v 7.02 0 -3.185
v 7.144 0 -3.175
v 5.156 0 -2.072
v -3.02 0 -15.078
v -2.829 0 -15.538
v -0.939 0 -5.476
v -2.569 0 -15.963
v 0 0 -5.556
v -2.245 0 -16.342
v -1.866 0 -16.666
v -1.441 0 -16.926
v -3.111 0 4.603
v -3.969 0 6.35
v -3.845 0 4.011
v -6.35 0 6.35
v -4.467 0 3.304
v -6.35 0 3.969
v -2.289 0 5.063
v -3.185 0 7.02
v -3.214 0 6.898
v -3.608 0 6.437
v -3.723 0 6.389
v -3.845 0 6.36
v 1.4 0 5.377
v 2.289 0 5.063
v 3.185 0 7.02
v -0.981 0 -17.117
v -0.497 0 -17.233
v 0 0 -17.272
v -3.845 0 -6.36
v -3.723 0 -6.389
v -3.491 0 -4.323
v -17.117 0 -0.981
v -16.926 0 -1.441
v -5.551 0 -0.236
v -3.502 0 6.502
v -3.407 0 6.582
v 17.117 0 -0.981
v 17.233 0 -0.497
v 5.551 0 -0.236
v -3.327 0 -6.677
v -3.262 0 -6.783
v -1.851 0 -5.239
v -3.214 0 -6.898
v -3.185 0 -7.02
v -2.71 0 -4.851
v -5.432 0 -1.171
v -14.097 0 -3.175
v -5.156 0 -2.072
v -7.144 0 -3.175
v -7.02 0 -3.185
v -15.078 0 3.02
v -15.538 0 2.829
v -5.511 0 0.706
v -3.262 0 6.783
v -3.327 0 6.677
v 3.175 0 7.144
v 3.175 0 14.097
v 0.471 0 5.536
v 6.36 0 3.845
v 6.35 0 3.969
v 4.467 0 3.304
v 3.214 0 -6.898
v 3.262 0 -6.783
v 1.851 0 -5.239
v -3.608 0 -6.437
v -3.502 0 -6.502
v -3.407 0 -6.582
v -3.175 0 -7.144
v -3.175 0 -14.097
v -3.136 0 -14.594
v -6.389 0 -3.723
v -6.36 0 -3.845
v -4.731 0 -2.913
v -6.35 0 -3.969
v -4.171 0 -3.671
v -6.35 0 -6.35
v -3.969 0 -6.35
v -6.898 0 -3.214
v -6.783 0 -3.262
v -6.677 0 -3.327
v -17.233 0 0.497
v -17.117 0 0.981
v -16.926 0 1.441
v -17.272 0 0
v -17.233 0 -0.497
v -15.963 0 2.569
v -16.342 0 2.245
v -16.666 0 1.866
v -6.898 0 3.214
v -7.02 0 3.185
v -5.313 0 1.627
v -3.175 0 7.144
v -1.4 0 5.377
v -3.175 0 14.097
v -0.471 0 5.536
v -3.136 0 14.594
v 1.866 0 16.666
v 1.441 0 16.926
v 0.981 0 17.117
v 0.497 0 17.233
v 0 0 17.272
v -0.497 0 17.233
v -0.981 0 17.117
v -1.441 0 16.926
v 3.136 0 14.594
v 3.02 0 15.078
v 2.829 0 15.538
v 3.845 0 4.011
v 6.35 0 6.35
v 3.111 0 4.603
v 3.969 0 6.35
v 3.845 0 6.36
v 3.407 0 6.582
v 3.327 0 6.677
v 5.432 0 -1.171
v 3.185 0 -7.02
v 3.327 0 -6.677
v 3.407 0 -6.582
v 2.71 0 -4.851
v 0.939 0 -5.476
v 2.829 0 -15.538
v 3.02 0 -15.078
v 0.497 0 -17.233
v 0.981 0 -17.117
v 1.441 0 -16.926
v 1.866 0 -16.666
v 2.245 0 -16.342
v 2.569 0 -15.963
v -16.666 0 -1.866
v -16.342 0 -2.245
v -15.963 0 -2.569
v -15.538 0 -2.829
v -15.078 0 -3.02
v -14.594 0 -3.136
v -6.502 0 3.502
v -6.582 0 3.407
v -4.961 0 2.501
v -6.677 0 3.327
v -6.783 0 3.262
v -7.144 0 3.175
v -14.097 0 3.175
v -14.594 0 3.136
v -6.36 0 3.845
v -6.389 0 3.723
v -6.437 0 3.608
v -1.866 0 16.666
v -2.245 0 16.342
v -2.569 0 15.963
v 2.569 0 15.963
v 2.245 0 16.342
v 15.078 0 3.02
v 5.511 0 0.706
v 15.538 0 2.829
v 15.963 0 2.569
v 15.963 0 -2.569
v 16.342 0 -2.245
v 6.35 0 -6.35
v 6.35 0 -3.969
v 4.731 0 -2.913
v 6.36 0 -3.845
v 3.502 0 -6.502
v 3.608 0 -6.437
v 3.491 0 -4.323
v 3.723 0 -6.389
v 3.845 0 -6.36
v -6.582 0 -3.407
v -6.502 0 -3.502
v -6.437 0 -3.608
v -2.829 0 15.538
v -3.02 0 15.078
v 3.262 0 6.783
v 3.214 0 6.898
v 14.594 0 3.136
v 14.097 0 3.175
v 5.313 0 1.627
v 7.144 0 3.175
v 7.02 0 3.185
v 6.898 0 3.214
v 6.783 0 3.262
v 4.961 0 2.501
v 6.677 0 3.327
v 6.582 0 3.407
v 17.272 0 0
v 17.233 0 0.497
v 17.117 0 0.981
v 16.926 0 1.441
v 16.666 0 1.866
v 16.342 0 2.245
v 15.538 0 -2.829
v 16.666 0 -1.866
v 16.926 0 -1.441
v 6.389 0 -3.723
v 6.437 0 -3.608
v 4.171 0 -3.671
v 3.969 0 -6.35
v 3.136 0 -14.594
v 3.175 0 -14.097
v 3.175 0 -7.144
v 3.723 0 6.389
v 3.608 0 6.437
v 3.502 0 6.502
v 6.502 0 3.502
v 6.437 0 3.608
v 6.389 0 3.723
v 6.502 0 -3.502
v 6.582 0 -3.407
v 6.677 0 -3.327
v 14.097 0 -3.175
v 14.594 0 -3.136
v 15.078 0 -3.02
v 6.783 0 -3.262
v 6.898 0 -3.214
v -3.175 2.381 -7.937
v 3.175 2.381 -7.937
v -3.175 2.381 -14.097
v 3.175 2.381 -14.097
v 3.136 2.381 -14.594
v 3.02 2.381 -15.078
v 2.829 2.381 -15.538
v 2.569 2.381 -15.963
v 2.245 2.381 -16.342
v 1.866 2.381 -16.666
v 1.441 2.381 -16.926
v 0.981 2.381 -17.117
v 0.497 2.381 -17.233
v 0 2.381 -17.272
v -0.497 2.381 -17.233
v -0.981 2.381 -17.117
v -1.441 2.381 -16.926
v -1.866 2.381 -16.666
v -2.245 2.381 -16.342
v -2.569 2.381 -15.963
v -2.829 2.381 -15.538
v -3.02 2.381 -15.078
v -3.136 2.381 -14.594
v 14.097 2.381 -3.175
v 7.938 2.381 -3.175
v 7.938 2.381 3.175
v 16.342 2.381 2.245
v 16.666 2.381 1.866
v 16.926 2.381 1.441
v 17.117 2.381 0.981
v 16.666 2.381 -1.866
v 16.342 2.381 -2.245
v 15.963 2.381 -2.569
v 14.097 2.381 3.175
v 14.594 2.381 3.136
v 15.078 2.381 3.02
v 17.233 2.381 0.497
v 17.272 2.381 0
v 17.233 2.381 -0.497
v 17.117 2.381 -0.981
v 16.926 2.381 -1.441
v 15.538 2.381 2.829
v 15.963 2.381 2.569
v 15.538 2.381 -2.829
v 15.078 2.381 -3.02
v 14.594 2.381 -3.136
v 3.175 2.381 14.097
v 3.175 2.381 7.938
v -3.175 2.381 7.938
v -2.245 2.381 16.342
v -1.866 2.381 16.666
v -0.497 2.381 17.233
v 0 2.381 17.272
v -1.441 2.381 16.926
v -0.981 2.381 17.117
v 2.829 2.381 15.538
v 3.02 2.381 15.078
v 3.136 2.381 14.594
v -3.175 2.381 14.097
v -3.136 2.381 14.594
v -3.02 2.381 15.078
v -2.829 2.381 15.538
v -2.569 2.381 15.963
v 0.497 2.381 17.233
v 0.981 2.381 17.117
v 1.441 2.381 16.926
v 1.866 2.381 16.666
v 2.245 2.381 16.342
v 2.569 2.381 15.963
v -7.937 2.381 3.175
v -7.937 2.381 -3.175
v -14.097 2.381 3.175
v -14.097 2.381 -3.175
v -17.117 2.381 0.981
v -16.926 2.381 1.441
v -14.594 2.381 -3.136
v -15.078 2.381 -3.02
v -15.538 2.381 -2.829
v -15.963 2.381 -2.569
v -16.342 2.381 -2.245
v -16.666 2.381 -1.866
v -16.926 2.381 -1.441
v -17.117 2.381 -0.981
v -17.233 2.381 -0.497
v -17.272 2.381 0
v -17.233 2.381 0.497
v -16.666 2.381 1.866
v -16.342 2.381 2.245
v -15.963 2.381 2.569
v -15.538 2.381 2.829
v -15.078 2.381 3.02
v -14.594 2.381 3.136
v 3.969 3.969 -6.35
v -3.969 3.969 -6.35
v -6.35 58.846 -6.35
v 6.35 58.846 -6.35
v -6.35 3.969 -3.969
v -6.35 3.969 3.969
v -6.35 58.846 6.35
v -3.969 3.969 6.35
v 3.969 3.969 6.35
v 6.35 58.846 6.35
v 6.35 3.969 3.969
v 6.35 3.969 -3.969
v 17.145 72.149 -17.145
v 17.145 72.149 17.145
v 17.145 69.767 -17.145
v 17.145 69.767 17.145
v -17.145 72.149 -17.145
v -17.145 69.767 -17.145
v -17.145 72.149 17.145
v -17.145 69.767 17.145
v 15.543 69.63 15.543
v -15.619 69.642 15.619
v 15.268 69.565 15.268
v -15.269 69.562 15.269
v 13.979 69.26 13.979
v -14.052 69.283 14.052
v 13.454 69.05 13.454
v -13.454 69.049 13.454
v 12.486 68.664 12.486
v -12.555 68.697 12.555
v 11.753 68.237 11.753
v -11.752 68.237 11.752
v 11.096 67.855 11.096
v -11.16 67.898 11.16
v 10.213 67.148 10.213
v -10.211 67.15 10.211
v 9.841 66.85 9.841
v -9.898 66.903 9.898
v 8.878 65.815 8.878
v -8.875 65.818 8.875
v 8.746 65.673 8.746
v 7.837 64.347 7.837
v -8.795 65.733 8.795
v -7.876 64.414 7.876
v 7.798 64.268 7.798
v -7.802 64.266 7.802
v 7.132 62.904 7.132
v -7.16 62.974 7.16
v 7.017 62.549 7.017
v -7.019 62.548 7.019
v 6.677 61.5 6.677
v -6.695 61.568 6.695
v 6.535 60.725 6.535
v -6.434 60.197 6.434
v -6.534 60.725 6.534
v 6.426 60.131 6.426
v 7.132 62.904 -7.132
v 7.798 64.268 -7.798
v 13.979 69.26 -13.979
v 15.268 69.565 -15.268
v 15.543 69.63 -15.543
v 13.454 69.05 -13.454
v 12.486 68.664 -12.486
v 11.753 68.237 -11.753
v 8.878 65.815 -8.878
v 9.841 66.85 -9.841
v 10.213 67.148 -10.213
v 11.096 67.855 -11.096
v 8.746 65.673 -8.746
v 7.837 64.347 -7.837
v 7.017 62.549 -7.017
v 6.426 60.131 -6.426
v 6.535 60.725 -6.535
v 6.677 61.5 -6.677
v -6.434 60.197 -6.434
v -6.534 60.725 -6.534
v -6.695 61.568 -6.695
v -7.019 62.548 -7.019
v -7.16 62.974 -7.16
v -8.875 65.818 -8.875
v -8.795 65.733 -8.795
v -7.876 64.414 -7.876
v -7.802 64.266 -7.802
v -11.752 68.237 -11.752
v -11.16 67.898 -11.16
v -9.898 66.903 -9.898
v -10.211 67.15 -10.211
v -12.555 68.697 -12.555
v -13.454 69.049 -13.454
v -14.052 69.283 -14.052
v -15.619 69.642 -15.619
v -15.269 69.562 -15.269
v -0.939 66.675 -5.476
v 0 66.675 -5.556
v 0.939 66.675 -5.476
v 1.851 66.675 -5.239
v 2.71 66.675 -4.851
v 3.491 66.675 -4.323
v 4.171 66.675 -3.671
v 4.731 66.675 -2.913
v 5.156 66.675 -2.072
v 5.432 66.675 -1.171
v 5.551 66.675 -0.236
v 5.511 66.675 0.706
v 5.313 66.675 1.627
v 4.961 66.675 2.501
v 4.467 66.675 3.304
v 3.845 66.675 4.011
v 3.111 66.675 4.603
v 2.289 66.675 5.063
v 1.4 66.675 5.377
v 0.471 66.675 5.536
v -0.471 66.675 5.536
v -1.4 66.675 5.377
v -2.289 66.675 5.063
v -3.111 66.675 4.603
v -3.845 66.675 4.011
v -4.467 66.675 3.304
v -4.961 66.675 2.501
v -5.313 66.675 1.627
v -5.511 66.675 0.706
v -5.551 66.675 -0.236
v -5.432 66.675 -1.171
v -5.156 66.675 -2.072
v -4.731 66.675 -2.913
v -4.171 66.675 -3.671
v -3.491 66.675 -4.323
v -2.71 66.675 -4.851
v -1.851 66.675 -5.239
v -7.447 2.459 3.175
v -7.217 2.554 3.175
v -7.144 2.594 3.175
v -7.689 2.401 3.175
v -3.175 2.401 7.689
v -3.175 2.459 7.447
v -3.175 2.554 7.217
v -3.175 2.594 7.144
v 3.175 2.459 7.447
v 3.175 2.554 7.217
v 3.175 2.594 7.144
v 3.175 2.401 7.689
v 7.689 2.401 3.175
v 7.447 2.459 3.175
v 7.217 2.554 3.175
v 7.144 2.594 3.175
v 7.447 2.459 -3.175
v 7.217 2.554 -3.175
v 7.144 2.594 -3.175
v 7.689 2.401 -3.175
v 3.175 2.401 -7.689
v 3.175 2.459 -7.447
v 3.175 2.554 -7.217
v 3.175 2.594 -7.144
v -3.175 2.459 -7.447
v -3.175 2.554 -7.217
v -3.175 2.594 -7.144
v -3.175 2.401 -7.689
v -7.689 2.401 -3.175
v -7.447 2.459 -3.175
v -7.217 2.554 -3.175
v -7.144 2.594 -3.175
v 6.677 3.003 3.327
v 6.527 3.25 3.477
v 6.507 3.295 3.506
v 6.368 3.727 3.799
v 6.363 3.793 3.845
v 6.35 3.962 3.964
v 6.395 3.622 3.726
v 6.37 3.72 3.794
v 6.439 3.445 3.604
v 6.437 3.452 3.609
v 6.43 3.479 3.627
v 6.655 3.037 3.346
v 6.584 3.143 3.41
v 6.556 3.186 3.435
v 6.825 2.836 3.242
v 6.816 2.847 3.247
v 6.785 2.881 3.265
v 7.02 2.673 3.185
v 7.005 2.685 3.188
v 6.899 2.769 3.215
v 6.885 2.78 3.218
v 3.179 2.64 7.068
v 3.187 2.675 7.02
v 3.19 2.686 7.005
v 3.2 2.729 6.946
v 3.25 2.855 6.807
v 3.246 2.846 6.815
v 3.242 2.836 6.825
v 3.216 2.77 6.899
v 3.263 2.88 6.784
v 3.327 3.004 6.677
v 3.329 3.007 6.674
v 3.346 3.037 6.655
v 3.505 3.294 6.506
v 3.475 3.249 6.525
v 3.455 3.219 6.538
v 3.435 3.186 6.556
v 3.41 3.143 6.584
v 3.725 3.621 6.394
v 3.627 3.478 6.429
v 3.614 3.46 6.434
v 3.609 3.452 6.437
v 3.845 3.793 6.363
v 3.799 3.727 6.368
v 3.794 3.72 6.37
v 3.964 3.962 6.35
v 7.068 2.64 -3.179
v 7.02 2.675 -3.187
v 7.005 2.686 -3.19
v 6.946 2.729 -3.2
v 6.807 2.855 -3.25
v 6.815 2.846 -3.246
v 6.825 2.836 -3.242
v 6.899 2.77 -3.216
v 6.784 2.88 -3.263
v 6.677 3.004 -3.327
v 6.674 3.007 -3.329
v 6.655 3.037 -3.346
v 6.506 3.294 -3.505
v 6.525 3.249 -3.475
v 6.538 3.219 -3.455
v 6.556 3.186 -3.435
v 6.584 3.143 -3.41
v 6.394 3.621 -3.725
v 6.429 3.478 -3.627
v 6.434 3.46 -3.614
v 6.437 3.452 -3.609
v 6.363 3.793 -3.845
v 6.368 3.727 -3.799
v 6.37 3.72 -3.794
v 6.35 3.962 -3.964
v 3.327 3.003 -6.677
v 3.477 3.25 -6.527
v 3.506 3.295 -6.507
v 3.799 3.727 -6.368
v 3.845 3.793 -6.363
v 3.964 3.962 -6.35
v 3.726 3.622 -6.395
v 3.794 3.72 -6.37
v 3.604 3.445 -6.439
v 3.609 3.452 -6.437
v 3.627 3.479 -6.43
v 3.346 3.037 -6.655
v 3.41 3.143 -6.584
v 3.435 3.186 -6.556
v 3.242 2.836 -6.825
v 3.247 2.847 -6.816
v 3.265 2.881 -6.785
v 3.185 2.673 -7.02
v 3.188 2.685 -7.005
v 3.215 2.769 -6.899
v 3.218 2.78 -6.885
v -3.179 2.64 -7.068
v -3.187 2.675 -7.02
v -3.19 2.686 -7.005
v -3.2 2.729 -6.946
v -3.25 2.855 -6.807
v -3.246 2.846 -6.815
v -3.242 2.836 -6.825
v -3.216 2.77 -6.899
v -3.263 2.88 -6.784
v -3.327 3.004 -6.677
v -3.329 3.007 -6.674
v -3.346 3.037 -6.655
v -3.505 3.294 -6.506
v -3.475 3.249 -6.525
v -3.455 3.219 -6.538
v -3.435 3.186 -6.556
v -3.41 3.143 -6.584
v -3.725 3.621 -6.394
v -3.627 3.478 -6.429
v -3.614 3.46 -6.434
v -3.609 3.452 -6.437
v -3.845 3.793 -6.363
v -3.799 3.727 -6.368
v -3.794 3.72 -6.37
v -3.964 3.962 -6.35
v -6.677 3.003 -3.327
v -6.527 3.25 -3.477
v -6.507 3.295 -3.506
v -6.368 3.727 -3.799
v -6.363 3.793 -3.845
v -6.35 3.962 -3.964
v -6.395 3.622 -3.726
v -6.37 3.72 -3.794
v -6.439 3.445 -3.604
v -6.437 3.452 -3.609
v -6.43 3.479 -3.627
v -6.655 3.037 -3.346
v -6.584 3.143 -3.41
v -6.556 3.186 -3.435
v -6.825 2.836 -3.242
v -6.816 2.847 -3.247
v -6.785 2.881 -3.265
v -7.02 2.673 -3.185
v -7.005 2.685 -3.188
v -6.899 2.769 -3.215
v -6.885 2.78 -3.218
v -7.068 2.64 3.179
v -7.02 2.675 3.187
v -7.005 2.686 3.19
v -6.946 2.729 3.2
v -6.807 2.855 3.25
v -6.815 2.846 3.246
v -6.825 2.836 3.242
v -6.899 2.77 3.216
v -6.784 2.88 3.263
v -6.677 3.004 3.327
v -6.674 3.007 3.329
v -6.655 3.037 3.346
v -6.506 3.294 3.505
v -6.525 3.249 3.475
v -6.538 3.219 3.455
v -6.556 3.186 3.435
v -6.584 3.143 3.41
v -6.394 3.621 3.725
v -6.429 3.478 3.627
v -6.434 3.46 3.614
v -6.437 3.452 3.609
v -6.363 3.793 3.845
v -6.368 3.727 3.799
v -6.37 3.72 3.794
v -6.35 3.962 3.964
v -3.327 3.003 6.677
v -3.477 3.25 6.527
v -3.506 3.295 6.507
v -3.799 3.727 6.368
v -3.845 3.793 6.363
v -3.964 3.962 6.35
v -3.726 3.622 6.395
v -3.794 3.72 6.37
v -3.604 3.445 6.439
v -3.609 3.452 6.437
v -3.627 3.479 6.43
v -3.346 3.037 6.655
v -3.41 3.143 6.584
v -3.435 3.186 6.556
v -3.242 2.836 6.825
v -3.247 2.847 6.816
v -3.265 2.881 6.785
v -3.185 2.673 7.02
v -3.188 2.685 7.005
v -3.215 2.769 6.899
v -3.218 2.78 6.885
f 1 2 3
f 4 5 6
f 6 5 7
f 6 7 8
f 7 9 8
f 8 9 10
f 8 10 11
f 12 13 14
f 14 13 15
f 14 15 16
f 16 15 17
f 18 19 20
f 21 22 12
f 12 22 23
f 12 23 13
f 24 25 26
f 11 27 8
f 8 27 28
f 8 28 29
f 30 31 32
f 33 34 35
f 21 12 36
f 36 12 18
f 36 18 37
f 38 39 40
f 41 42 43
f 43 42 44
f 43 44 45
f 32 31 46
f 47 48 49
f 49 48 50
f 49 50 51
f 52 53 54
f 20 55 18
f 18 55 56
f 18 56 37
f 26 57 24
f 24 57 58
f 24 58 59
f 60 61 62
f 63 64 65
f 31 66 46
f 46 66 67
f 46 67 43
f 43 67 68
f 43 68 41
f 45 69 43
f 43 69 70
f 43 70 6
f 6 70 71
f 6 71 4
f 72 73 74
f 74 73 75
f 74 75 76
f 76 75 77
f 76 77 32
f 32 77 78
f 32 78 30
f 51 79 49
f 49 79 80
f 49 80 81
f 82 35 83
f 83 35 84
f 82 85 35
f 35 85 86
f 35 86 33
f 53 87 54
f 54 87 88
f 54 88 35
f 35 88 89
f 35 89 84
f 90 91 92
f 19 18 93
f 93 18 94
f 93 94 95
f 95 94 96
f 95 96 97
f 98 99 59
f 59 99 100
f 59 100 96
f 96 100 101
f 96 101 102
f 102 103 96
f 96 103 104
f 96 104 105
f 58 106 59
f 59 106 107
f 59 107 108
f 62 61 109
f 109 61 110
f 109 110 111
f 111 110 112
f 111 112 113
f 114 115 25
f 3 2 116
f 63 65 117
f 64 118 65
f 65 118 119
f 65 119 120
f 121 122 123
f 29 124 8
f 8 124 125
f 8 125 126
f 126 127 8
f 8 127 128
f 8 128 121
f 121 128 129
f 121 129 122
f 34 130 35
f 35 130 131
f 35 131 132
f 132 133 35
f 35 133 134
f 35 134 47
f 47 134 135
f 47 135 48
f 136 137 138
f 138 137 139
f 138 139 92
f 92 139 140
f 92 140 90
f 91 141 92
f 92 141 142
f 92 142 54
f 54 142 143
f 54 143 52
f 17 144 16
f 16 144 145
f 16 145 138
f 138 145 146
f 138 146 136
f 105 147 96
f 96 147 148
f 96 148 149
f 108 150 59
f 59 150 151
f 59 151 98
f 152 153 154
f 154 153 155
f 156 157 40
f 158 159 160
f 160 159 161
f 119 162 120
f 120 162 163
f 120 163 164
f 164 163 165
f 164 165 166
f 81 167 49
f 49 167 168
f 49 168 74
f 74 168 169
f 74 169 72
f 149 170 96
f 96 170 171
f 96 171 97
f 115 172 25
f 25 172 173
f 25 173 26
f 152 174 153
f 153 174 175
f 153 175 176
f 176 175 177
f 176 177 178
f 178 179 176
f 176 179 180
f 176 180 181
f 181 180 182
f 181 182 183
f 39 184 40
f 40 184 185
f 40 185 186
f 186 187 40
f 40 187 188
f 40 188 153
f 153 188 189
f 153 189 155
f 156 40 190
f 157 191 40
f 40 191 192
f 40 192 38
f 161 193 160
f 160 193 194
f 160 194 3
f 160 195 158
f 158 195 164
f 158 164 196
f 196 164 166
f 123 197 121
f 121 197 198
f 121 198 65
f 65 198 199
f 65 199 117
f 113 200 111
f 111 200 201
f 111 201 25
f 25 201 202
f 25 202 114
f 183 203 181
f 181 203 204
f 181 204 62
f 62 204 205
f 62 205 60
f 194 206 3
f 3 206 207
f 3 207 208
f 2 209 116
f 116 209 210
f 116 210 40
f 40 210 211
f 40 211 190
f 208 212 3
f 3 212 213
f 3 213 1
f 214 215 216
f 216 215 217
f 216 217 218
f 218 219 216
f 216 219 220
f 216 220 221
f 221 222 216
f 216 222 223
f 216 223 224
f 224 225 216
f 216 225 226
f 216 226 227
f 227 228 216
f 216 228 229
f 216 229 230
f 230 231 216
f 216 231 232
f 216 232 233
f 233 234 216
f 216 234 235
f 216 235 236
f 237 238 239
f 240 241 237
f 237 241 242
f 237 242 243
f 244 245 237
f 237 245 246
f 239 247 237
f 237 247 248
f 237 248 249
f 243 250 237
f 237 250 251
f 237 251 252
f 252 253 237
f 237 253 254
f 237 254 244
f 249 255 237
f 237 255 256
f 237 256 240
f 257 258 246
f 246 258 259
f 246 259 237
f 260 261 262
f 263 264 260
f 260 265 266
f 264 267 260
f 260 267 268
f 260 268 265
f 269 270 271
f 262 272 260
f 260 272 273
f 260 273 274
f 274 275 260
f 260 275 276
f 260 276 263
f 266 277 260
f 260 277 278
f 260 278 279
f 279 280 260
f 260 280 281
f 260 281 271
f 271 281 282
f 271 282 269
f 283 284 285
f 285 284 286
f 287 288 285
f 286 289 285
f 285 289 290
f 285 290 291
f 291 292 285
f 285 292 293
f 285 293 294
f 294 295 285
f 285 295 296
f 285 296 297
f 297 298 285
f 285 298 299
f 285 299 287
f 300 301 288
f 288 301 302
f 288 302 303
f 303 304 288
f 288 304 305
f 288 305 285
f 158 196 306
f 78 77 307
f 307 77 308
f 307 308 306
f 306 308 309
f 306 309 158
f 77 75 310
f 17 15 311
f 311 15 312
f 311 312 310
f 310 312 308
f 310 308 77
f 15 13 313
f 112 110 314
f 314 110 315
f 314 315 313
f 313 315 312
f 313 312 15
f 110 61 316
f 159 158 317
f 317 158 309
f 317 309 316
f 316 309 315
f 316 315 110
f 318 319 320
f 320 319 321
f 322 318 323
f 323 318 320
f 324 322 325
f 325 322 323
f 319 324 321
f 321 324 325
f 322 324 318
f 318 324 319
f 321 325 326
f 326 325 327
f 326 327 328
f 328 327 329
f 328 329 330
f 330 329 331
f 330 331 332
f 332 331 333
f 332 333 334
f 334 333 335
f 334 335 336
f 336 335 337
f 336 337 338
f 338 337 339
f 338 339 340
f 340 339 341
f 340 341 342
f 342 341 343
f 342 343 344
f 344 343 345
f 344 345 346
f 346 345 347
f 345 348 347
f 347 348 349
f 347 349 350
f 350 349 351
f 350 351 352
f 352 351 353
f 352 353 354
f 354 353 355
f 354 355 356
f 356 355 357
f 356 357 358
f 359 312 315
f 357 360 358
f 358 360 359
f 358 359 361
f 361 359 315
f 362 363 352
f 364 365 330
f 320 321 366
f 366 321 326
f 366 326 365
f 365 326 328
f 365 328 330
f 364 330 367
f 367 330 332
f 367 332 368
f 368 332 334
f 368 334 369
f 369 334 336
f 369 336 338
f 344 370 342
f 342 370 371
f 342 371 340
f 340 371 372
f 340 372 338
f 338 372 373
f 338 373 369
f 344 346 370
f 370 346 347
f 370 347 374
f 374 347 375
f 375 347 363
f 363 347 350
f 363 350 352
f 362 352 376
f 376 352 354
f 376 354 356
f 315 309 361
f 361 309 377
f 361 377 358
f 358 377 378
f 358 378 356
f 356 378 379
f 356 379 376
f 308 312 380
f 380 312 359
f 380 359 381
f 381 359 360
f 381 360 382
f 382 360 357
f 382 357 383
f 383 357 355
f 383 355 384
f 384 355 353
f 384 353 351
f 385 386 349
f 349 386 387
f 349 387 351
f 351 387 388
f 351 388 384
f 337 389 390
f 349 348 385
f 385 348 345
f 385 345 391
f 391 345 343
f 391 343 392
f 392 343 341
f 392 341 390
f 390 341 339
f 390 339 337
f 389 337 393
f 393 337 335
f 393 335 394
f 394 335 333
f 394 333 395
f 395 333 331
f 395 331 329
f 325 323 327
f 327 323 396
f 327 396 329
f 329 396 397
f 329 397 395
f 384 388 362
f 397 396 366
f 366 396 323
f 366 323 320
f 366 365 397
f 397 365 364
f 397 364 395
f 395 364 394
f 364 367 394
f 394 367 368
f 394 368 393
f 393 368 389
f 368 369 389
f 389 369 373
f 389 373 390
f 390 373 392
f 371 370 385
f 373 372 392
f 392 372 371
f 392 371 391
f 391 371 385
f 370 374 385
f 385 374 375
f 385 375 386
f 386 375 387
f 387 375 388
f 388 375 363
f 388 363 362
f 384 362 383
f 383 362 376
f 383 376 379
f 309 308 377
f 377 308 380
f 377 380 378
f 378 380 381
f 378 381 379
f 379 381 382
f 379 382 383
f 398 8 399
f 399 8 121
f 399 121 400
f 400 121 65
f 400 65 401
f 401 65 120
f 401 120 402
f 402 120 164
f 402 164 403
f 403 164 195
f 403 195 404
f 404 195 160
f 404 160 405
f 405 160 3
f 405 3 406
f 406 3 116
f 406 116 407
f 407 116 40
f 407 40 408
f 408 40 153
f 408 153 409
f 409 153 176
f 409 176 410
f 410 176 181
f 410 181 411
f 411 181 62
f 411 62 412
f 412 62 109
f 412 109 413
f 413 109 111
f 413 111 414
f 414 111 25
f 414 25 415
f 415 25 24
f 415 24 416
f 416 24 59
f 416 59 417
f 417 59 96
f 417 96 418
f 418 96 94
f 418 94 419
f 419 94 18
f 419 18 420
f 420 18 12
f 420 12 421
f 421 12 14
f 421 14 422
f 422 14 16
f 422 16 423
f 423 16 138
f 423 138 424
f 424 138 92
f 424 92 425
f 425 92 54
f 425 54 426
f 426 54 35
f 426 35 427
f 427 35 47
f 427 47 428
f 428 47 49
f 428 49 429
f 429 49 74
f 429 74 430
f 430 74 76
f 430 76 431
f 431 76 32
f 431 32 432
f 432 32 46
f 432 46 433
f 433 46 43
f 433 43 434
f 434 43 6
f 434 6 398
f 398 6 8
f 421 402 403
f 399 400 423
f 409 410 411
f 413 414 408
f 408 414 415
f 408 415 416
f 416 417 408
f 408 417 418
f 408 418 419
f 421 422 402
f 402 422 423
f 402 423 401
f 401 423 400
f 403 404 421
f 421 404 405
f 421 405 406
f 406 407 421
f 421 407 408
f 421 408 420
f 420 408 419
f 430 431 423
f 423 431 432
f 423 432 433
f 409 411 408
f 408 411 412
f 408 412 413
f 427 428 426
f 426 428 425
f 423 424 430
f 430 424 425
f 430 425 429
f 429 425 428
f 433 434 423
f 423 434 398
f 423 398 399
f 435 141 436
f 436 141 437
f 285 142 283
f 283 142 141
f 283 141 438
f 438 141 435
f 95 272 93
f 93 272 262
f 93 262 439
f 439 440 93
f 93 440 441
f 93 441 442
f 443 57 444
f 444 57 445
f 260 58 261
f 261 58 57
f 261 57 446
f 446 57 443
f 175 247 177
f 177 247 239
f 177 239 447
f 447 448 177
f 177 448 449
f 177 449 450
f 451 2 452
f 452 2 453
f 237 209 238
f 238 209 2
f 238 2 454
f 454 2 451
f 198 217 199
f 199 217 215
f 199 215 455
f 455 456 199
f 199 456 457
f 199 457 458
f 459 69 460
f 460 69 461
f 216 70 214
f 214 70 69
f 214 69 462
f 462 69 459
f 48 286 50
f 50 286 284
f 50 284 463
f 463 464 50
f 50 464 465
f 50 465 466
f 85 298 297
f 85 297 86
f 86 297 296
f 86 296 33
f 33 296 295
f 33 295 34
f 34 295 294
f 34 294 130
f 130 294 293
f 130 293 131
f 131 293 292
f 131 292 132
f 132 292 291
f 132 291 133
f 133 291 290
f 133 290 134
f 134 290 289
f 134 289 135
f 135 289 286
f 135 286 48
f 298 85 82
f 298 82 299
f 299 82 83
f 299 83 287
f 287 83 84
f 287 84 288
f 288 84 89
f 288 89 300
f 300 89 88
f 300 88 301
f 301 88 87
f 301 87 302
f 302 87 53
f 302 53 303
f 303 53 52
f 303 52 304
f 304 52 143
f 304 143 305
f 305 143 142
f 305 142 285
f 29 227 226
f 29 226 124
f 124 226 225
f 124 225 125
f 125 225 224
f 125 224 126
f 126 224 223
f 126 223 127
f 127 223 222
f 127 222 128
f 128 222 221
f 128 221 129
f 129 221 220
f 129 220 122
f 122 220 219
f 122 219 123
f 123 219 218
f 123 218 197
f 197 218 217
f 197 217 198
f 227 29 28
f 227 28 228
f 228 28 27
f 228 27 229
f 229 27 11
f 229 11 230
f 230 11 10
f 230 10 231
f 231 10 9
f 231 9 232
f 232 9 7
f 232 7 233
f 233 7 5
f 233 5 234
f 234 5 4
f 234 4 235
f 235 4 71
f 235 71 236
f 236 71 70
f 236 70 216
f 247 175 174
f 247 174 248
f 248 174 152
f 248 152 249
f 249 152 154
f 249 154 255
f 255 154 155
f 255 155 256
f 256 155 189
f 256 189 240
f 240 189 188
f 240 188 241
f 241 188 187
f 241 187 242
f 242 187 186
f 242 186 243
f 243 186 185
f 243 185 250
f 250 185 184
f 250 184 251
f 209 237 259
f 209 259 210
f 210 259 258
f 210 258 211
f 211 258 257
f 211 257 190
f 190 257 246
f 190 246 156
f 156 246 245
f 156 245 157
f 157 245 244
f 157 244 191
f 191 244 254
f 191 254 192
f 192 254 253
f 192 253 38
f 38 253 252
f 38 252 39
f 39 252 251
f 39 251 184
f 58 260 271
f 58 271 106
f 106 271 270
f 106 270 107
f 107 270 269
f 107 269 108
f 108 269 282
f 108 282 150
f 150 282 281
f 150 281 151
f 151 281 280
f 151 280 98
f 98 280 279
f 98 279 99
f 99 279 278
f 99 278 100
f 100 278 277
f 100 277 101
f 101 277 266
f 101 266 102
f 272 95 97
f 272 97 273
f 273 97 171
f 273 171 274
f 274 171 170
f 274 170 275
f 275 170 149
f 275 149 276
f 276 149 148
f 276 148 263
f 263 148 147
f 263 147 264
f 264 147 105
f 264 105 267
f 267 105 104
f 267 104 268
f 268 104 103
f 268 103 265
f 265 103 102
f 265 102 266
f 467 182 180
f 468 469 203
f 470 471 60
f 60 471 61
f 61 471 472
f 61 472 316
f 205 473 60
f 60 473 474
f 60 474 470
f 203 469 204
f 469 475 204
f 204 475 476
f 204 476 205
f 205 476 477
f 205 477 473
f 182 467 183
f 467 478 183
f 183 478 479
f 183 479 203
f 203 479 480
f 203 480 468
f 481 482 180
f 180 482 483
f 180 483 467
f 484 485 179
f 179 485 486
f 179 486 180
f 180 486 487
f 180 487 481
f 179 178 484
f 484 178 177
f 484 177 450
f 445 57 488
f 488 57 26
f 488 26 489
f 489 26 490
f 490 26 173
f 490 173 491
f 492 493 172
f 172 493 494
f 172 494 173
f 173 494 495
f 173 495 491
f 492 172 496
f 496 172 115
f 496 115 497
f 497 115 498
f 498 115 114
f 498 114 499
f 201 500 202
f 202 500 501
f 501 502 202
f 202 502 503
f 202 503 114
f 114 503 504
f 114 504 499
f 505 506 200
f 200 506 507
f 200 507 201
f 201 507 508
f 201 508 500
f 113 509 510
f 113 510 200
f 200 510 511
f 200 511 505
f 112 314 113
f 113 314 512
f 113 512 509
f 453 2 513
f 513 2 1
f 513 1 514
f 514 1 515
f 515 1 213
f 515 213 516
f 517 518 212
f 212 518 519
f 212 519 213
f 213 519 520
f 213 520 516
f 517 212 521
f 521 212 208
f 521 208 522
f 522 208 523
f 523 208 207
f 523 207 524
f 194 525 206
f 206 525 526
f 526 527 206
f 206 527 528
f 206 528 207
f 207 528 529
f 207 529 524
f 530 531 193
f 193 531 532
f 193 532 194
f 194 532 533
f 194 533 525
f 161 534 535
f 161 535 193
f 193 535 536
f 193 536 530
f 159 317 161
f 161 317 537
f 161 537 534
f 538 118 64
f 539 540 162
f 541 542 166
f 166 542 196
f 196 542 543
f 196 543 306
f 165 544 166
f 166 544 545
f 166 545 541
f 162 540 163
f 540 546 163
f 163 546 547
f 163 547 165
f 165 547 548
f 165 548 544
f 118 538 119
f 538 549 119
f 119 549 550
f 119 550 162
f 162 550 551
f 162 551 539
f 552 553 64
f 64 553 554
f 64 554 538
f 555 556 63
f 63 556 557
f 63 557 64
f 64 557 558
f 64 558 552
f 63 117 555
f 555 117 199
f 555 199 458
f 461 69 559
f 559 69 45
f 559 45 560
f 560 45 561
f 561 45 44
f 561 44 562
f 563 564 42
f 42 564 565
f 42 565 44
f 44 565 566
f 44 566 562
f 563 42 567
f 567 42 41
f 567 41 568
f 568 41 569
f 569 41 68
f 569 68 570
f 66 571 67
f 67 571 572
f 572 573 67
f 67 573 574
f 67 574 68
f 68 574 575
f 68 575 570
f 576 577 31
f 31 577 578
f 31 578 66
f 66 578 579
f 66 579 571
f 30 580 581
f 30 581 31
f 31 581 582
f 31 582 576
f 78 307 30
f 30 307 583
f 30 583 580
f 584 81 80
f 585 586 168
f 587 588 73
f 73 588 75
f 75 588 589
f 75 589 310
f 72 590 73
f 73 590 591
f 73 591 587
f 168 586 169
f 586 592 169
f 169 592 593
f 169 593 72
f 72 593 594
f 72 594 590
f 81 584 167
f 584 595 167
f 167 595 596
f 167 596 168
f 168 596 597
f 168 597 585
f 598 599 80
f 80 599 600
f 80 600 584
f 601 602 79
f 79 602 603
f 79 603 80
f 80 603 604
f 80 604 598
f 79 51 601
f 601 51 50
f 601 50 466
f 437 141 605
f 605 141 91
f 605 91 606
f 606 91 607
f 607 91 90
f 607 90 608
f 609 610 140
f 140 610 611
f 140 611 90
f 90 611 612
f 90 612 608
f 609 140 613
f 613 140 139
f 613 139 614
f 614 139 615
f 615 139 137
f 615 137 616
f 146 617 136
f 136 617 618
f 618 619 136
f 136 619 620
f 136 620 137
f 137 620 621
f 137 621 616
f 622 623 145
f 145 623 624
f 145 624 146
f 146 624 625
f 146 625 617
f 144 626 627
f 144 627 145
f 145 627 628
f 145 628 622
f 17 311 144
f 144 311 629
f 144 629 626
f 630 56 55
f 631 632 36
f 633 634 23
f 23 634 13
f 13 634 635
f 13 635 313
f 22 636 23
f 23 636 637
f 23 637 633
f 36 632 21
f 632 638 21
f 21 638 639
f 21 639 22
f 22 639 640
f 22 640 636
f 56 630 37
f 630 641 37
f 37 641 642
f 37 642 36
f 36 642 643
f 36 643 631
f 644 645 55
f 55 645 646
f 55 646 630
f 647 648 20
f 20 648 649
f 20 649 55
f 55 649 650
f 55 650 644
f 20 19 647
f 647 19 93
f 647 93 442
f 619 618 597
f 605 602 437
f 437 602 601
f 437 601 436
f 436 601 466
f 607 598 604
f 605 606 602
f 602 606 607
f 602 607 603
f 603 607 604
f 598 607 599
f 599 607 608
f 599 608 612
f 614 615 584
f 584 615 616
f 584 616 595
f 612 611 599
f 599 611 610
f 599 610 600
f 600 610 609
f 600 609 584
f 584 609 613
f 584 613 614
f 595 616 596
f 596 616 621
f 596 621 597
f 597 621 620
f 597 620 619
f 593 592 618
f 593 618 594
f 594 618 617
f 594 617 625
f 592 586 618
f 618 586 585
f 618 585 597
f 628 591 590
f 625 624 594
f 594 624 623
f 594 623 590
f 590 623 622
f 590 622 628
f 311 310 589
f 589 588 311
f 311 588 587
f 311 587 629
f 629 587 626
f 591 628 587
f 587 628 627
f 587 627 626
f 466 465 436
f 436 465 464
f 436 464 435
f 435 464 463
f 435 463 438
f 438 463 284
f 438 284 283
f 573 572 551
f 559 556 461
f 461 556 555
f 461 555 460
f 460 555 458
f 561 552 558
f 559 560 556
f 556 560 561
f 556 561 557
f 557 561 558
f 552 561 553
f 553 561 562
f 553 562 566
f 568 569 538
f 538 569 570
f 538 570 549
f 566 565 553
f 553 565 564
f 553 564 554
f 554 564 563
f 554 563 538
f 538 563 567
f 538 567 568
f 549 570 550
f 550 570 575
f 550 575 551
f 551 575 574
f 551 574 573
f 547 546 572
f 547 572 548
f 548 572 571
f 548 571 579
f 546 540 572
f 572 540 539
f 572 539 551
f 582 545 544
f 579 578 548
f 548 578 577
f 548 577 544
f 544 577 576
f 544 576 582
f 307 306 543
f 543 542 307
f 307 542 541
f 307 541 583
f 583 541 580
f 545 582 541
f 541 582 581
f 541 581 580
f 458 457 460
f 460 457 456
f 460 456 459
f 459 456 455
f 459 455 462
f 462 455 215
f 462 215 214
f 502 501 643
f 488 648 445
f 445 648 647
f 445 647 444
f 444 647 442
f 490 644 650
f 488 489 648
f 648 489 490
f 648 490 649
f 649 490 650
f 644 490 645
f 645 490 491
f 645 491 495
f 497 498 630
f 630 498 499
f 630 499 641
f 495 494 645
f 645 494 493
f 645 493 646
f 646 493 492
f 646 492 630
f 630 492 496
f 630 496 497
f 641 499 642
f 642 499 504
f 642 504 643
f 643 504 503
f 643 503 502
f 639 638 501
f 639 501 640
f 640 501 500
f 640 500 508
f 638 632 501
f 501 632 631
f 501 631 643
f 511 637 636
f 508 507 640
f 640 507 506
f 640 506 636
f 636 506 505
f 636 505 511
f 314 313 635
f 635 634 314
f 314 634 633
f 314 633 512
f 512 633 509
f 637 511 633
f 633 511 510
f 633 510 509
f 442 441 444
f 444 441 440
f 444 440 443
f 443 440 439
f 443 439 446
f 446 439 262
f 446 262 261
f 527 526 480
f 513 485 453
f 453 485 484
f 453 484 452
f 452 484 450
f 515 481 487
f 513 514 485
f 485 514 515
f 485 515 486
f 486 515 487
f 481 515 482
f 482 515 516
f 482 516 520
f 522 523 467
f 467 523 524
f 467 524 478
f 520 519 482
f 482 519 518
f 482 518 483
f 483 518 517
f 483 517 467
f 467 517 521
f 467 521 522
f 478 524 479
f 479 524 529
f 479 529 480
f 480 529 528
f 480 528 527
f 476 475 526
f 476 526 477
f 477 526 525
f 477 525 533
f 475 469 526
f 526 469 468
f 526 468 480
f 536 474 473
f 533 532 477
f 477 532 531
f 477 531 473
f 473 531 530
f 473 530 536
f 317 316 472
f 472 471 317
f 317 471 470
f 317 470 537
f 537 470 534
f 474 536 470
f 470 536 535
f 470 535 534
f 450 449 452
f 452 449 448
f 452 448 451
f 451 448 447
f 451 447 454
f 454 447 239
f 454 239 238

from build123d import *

# Parameters (mm, degrees)
SKETCH1_W           = 10.922
SKETCH1_H           = 12.7
SKETCH1_W_2         = 12.7
SKETCH1_H_2         = 10.922
BOSS_EXTRUDE1_DEPTH = 2.38125
SKETCH2_W           = 12.7
SKETCH2_H           = 12.7
BOSS_EXTRUDE2_DEPTH = 67.3862
SKETCH3_W           = 34.29
SKETCH3_H           = 34.29
BOSS_EXTRUDE3_DEPTH = 2.38125
FILLET15_R          = 10.922
SKETCH4_R           = 5.55625
CUT_EXTRUDE1_DEPTH  = 66.675
CUT_EXTRUDE2_REACH  = 78.171
SKETCH5_W           = 10.922
SKETCH5_H           = 3.175
SKETCH5_W_2         = 3.175
SKETCH5_H_2         = 10.922
FILLET18_R          = 3.175
FILLET28_R          = 0.79375
FILLET29_R          = 1.5875


# Some blends are built 0.0001 mm under size
with BuildPart() as part:
    # Sketch1 → Boss-Extrude1 (new body)
    with BuildSketch(Plane(origin=(0, 0, 0), x_dir=(1, 0, 0), z_dir=(0, 1, 0))):
        with Locations((-11.811, 0)):
            Rectangle(SKETCH1_W, SKETCH1_H)
        Rectangle(SKETCH1_W_2, SKETCH1_H)
        with Locations((0, 11.811)):
            Rectangle(SKETCH1_W_2, SKETCH1_H_2)
        with Locations((11.811, 0)):
            Rectangle(SKETCH1_W, SKETCH1_H)
        with Locations((0, -11.811)):
            Rectangle(SKETCH1_W_2, SKETCH1_H_2)
    extrude(amount=BOSS_EXTRUDE1_DEPTH)

    # Sketch2 → Boss-Extrude2 (add)
    with BuildSketch(Plane(origin=(0, 2.38125, 0), x_dir=(1, 0, 0), z_dir=(0, 1, 0))):
        Rectangle(SKETCH2_W, SKETCH2_H)
    extrude(amount=BOSS_EXTRUDE2_DEPTH)

    # Sketch3 → Boss-Extrude3 (add)
    with BuildSketch(Plane(origin=(0, 69.76745, 0), x_dir=(1, 0, 0), z_dir=(0, 1, 0))):
        Rectangle(SKETCH3_W, SKETCH3_H)
    extrude(amount=BOSS_EXTRUDE3_DEPTH)

    # Fillet15
    # the kernel refuses this fillet: 10.922 mm, written as the material it adds along each edge
    with BuildSketch(Plane(origin=(6.35, 69.76745, 6.35), x_dir=(1, 0, 0), z_dir=(0, 0, -1))) as fillet15_piece_1_section:
        with BuildLine():
            CenterArc((FILLET15_R, FILLET15_R), FILLET15_R, 180, 90)
            Line((0, FILLET15_R), (0, 0))
            Line((0, 0), (FILLET15_R, 0))
        make_face()
    fillet15_piece_1 = extrude(amount=12.7, mode=Mode.PRIVATE)
    fillet15_piece_1 = split(fillet15_piece_1, bisect_by=Plane(origin=(17.145, 67.292403203, 0), z_dir=(-1, 0, 0)), keep=Keep.TOP, mode=Mode.PRIVATE)
    add(fillet15_piece_1)
    with BuildSketch(Plane(origin=(6.35, 69.76745, -6.35), x_dir=(0, 0, -1), z_dir=(-1, 0, 0))) as fillet15_piece_2_section:
        with BuildLine():
            CenterArc((FILLET15_R, FILLET15_R), FILLET15_R, 180, 90)
            Line((0, FILLET15_R), (0, 0))
            Line((0, 0), (FILLET15_R, 0))
        make_face()
    fillet15_piece_2 = extrude(amount=12.7, mode=Mode.PRIVATE)
    fillet15_piece_2 = split(fillet15_piece_2, bisect_by=Plane(origin=(0, 67.292403203, -17.145), z_dir=(0, 0, 1)), keep=Keep.TOP, mode=Mode.PRIVATE)
    add(fillet15_piece_2)
    with BuildSketch(Plane(origin=(-6.35, 69.76745, -6.35), x_dir=(-1, 0, 0), z_dir=(0, 0, 1))) as fillet15_piece_3_section:
        with BuildLine():
            CenterArc((FILLET15_R, FILLET15_R), FILLET15_R, 180, 90)
            Line((0, FILLET15_R), (0, 0))
            Line((0, 0), (FILLET15_R, 0))
        make_face()
    fillet15_piece_3 = extrude(amount=12.7, mode=Mode.PRIVATE)
    fillet15_piece_3 = split(fillet15_piece_3, bisect_by=Plane(origin=(-17.145, 67.292403203, 0), z_dir=(1, 0, 0)), keep=Keep.TOP, mode=Mode.PRIVATE)
    add(fillet15_piece_3)
    with BuildSketch(Plane(origin=(-6.35, 69.76745, 6.35), x_dir=(0, 0, 1), z_dir=(1, 0, 0))) as fillet15_piece_4_section:
        with BuildLine():
            CenterArc((FILLET15_R, FILLET15_R), FILLET15_R, 180, 90)
            Line((0, FILLET15_R), (0, 0))
            Line((0, 0), (FILLET15_R, 0))
        make_face()
    fillet15_piece_4 = extrude(amount=12.7, mode=Mode.PRIVATE)
    fillet15_piece_4 = split(fillet15_piece_4, bisect_by=Plane(origin=(0, 67.292403203, 17.145), z_dir=(0, 0, -1)), keep=Keep.TOP, mode=Mode.PRIVATE)
    add(fillet15_piece_4)
    with BuildSketch(Plane(origin=(-6.35, 69.76745, 6.35), x_dir=(0, 0, 1), z_dir=(1, 0, 0))) as fillet15_piece_5a_section:
        with BuildLine():
            CenterArc((FILLET15_R, FILLET15_R), FILLET15_R, 180, 90)
            Line((0, FILLET15_R), (0, 0))
            Line((0, 0), (FILLET15_R, 0))
        make_face()
    fillet15_piece_5a = extrude(amount=40.005, mode=Mode.PRIVATE)
    fillet15_piece_5a = split(fillet15_piece_5a, bisect_by=Plane(origin=(11.7475, 67.292403203, 17.145), z_dir=(0, 0, -1)), keep=Keep.TOP, mode=Mode.PRIVATE)
    fillet15_piece_5a = split(fillet15_piece_5a, bisect_by=Plane(origin=(17.145, 67.292403203, 8.815024112), z_dir=(-1, 0, 0)), keep=Keep.TOP, mode=Mode.PRIVATE)
    fillet15_piece_5a = split(fillet15_piece_5a, bisect_by=Plane(origin=(6.35, 67.292403203, 8.815024112), z_dir=(1, 0, 0)), keep=Keep.TOP, mode=Mode.PRIVATE)
    with BuildSketch(Plane(origin=(6.35, 69.76745, 33.655), x_dir=(1, 0, 0), z_dir=(0, 0, -1))) as fillet15_piece_5b_section:
        with BuildLine():
            CenterArc((FILLET15_R, FILLET15_R), FILLET15_R, 180, 90)
            Line((0, FILLET15_R), (0, 0))
            Line((0, 0), (FILLET15_R, 0))
        make_face()
    fillet15_piece_5b = extrude(amount=40.005, mode=Mode.PRIVATE)
    fillet15_piece_5b = split(fillet15_piece_5b, bisect_by=Plane(origin=(8.815024112, 67.292403203, 17.145), z_dir=(0, 0, -1)), keep=Keep.TOP, mode=Mode.PRIVATE)
    fillet15_piece_5b = split(fillet15_piece_5b, bisect_by=Plane(origin=(17.145, 67.292403203, 11.7475), z_dir=(-1, 0, 0)), keep=Keep.TOP, mode=Mode.PRIVATE)
    fillet15_piece_5b = split(fillet15_piece_5b, bisect_by=Plane(origin=(8.815024112, 67.292403203, 6.35), z_dir=(0, 0, 1)), keep=Keep.TOP, mode=Mode.PRIVATE)
    fillet15_piece_5 = fillet15_piece_5a & fillet15_piece_5b
    add(fillet15_piece_5)
    with BuildSketch(Plane(origin=(6.35, 69.76745, 6.35), x_dir=(1, 0, 0), z_dir=(0, 0, -1))) as fillet15_piece_6a_section:
        with BuildLine():
            CenterArc((FILLET15_R, FILLET15_R), FILLET15_R, 180, 90)
            Line((0, FILLET15_R), (0, 0))
            Line((0, 0), (FILLET15_R, 0))
        make_face()
    fillet15_piece_6a = extrude(amount=40.005, mode=Mode.PRIVATE)
    fillet15_piece_6a = split(fillet15_piece_6a, bisect_by=Plane(origin=(17.145, 67.292403203, -11.7475), z_dir=(-1, 0, 0)), keep=Keep.TOP, mode=Mode.PRIVATE)
    fillet15_piece_6a = split(fillet15_piece_6a, bisect_by=Plane(origin=(8.815024112, 67.292403203, -17.145), z_dir=(0, 0, 1)), keep=Keep.TOP, mode=Mode.PRIVATE)
    fillet15_piece_6a = split(fillet15_piece_6a, bisect_by=Plane(origin=(8.815024112, 67.292403203, -6.35), z_dir=(0, 0, -1)), keep=Keep.TOP, mode=Mode.PRIVATE)
    with BuildSketch(Plane(origin=(33.655, 69.76745, -6.35), x_dir=(0, 0, -1), z_dir=(-1, 0, 0))) as fillet15_piece_6b_section:
        with BuildLine():
            CenterArc((FILLET15_R, FILLET15_R), FILLET15_R, 180, 90)
            Line((0, FILLET15_R), (0, 0))
            Line((0, 0), (FILLET15_R, 0))
        make_face()
    fillet15_piece_6b = extrude(amount=40.005, mode=Mode.PRIVATE)
    fillet15_piece_6b = split(fillet15_piece_6b, bisect_by=Plane(origin=(17.145, 67.292403203, -8.815024112), z_dir=(-1, 0, 0)), keep=Keep.TOP, mode=Mode.PRIVATE)
    fillet15_piece_6b = split(fillet15_piece_6b, bisect_by=Plane(origin=(11.7475, 67.292403203, -17.145), z_dir=(0, 0, 1)), keep=Keep.TOP, mode=Mode.PRIVATE)
    fillet15_piece_6b = split(fillet15_piece_6b, bisect_by=Plane(origin=(6.35, 67.292403203, -8.815024112), z_dir=(1, 0, 0)), keep=Keep.TOP, mode=Mode.PRIVATE)
    fillet15_piece_6 = fillet15_piece_6a & fillet15_piece_6b
    add(fillet15_piece_6)
    with BuildSketch(Plane(origin=(-6.35, 69.76745, -33.655), x_dir=(-1, 0, 0), z_dir=(0, 0, 1))) as fillet15_piece_7a_section:
        with BuildLine():
            CenterArc((FILLET15_R, FILLET15_R), FILLET15_R, 180, 90)
            Line((0, FILLET15_R), (0, 0))
            Line((0, 0), (FILLET15_R, 0))
        make_face()
    fillet15_piece_7a = extrude(amount=40.005, mode=Mode.PRIVATE)
    fillet15_piece_7a = split(fillet15_piece_7a, bisect_by=Plane(origin=(-17.145, 67.292403203, -11.7475), z_dir=(1, 0, 0)), keep=Keep.TOP, mode=Mode.PRIVATE)
    fillet15_piece_7a = split(fillet15_piece_7a, bisect_by=Plane(origin=(-8.815024112, 67.292403203, -17.145), z_dir=(0, 0, 1)), keep=Keep.TOP, mode=Mode.PRIVATE)
    fillet15_piece_7a = split(fillet15_piece_7a, bisect_by=Plane(origin=(-8.815024112, 67.292403203, -6.35), z_dir=(0, 0, -1)), keep=Keep.TOP, mode=Mode.PRIVATE)
    with BuildSketch(Plane(origin=(6.35, 69.76745, -6.35), x_dir=(0, 0, -1), z_dir=(-1, 0, 0))) as fillet15_piece_7b_section:
        with BuildLine():
            CenterArc((FILLET15_R, FILLET15_R), FILLET15_R, 180, 90)
            Line((0, FILLET15_R), (0, 0))
            Line((0, 0), (FILLET15_R, 0))
        make_face()
    fillet15_piece_7b = extrude(amount=40.005, mode=Mode.PRIVATE)
    fillet15_piece_7b = split(fillet15_piece_7b, bisect_by=Plane(origin=(-17.145, 67.292403203, -8.815024112), z_dir=(1, 0, 0)), keep=Keep.TOP, mode=Mode.PRIVATE)
    fillet15_piece_7b = split(fillet15_piece_7b, bisect_by=Plane(origin=(-11.7475, 67.292403203, -17.145), z_dir=(0, 0, 1)), keep=Keep.TOP, mode=Mode.PRIVATE)
    fillet15_piece_7b = split(fillet15_piece_7b, bisect_by=Plane(origin=(-6.35, 67.292403203, -8.815024112), z_dir=(-1, 0, 0)), keep=Keep.TOP, mode=Mode.PRIVATE)
    fillet15_piece_7 = fillet15_piece_7a & fillet15_piece_7b
    add(fillet15_piece_7)
    with BuildSketch(Plane(origin=(-6.35, 69.76745, -6.35), x_dir=(-1, 0, 0), z_dir=(0, 0, 1))) as fillet15_piece_8a_section:
        with BuildLine():
            CenterArc((FILLET15_R, FILLET15_R), FILLET15_R, 180, 90)
            Line((0, FILLET15_R), (0, 0))
            Line((0, 0), (FILLET15_R, 0))
        make_face()
    fillet15_piece_8a = extrude(amount=40.005, mode=Mode.PRIVATE)
    fillet15_piece_8a = split(fillet15_piece_8a, bisect_by=Plane(origin=(-8.815024112, 67.292403203, 17.145), z_dir=(0, 0, -1)), keep=Keep.TOP, mode=Mode.PRIVATE)
    fillet15_piece_8a = split(fillet15_piece_8a, bisect_by=Plane(origin=(-17.145, 67.292403203, 11.7475), z_dir=(1, 0, 0)), keep=Keep.TOP, mode=Mode.PRIVATE)
    fillet15_piece_8a = split(fillet15_piece_8a, bisect_by=Plane(origin=(-8.815024112, 67.292403203, 6.35), z_dir=(0, 0, 1)), keep=Keep.TOP, mode=Mode.PRIVATE)
    with BuildSketch(Plane(origin=(-33.655, 69.76745, 6.35), x_dir=(0, 0, 1), z_dir=(1, 0, 0))) as fillet15_piece_8b_section:
        with BuildLine():
            CenterArc((FILLET15_R, FILLET15_R), FILLET15_R, 180, 90)
            Line((0, FILLET15_R), (0, 0))
            Line((0, 0), (FILLET15_R, 0))
        make_face()
    fillet15_piece_8b = extrude(amount=40.005, mode=Mode.PRIVATE)
    fillet15_piece_8b = split(fillet15_piece_8b, bisect_by=Plane(origin=(-11.7475, 67.292403203, 17.145), z_dir=(0, 0, -1)), keep=Keep.TOP, mode=Mode.PRIVATE)
    fillet15_piece_8b = split(fillet15_piece_8b, bisect_by=Plane(origin=(-17.145, 67.292403203, 8.815024112), z_dir=(1, 0, 0)), keep=Keep.TOP, mode=Mode.PRIVATE)
    fillet15_piece_8b = split(fillet15_piece_8b, bisect_by=Plane(origin=(-6.35, 67.292403203, 8.815024112), z_dir=(-1, 0, 0)), keep=Keep.TOP, mode=Mode.PRIVATE)
    fillet15_piece_8 = fillet15_piece_8a & fillet15_piece_8b
    add(fillet15_piece_8)

    # Sketch4 → Cut-Extrude1 (cut)
    with BuildSketch(Plane.XZ):
        with Locations(Location((0, 0, 0), (0, 0, 270))):
            Circle(SKETCH4_R)
    extrude(amount=-CUT_EXTRUDE1_DEPTH, mode=Mode.SUBTRACT)

    # Sketch5 → Cut-Extrude2 (cut, up to next)
    with BuildSketch(Plane.XZ, mode=Mode.PRIVATE) as cut_extrude2_sk1:
        with Locations((-11.811, 4.7625)):
            Rectangle(SKETCH5_W, SKETCH5_H)
    cut_extrude2_tool1 = extrude(cut_extrude2_sk1.sketch, amount=-CUT_EXTRUDE2_REACH, mode=Mode.PRIVATE) & part.part
    # Sketch5 → Cut-Extrude2 (cut, up to next)
    with BuildSketch(Plane.XZ, mode=Mode.PRIVATE) as cut_extrude2_sk2:
        with Locations((-4.7625, 11.811)):
            Rectangle(SKETCH5_W_2, SKETCH5_H_2)
    cut_extrude2_tool2 = extrude(cut_extrude2_sk2.sketch, amount=-CUT_EXTRUDE2_REACH, mode=Mode.PRIVATE) & part.part
    # Sketch5 → Cut-Extrude2 (cut, up to next)
    with BuildSketch(Plane.XZ, mode=Mode.PRIVATE) as cut_extrude2_sk3:
        with Locations((4.7625, 11.811)):
            Rectangle(SKETCH5_W_2, SKETCH5_H_2)
    cut_extrude2_tool3 = extrude(cut_extrude2_sk3.sketch, amount=-CUT_EXTRUDE2_REACH, mode=Mode.PRIVATE) & part.part
    # Sketch5 → Cut-Extrude2 (cut, up to next)
    with BuildSketch(Plane.XZ, mode=Mode.PRIVATE) as cut_extrude2_sk4:
        with Locations((11.811, 4.7625)):
            Rectangle(SKETCH5_W, SKETCH5_H)
    cut_extrude2_tool4 = extrude(cut_extrude2_sk4.sketch, amount=-CUT_EXTRUDE2_REACH, mode=Mode.PRIVATE) & part.part
    # Sketch5 → Cut-Extrude2 (cut, up to next)
    with BuildSketch(Plane.XZ, mode=Mode.PRIVATE) as cut_extrude2_sk5:
        with Locations((11.811, -4.7625)):
            Rectangle(SKETCH5_W, SKETCH5_H)
    cut_extrude2_tool5 = extrude(cut_extrude2_sk5.sketch, amount=-CUT_EXTRUDE2_REACH, mode=Mode.PRIVATE) & part.part
    # Sketch5 → Cut-Extrude2 (cut, up to next)
    with BuildSketch(Plane.XZ, mode=Mode.PRIVATE) as cut_extrude2_sk6:
        with Locations((4.7625, -11.811)):
            Rectangle(SKETCH5_W_2, SKETCH5_H_2)
    cut_extrude2_tool6 = extrude(cut_extrude2_sk6.sketch, amount=-CUT_EXTRUDE2_REACH, mode=Mode.PRIVATE) & part.part
    # Sketch5 → Cut-Extrude2 (cut, up to next)
    with BuildSketch(Plane.XZ, mode=Mode.PRIVATE) as cut_extrude2_sk7:
        with Locations((-4.7625, -11.811)):
            Rectangle(SKETCH5_W_2, SKETCH5_H_2)
    cut_extrude2_tool7 = extrude(cut_extrude2_sk7.sketch, amount=-CUT_EXTRUDE2_REACH, mode=Mode.PRIVATE) & part.part
    # Sketch5 → Cut-Extrude2 (cut, up to next)
    with BuildSketch(Plane.XZ, mode=Mode.PRIVATE) as cut_extrude2_sk8:
        with Locations((-11.811, -4.7625)):
            Rectangle(SKETCH5_W, SKETCH5_H)
    cut_extrude2_tool8 = extrude(cut_extrude2_sk8.sketch, amount=-CUT_EXTRUDE2_REACH, mode=Mode.PRIVATE) & part.part
    add(cut_extrude2_tool1.solids().sort_by_distance((-11.811, 0, 4.7625))[0], mode=Mode.SUBTRACT)
    add(cut_extrude2_tool2.solids().sort_by_distance((-4.7625, 0, 11.811))[0], mode=Mode.SUBTRACT)
    add(cut_extrude2_tool3.solids().sort_by_distance((4.7625, 0, 11.811))[0], mode=Mode.SUBTRACT)
    add(cut_extrude2_tool4.solids().sort_by_distance((11.811, 0, 4.7625))[0], mode=Mode.SUBTRACT)
    add(cut_extrude2_tool5.solids().sort_by_distance((11.811, 0, -4.7625))[0], mode=Mode.SUBTRACT)
    add(cut_extrude2_tool6.solids().sort_by_distance((4.7625, 0, -11.811))[0], mode=Mode.SUBTRACT)
    add(cut_extrude2_tool7.solids().sort_by_distance((-4.7625, 0, -11.811))[0], mode=Mode.SUBTRACT)
    add(cut_extrude2_tool8.solids().sort_by_distance((-11.811, 0, -4.7625))[0], mode=Mode.SUBTRACT)

    # Fillet18
    fillet18_edges = [part.edges().sort_by_distance(p)[0] for p in [
        (-17.272, 1.190625, 3.175),
        (-17.272, 1.190625, -3.175),
        (-3.175, 1.190625, -17.272),
        (3.175, 1.190625, -17.272),
        (17.272, 1.190625, -3.175),
        (17.272, 1.190625, 3.175),
        (-3.175, 1.190625, 17.272),
        (3.175, 1.190625, 17.272),
    ]]
    fillet(fillet18_edges, radius=FILLET18_R - 0.0001)  # a hair under: the kernel refuses the full size

    # Fillet28
    fillet28_edges = [part.edges().sort_by_distance(p)[0] for p in [
        (-3.175, 1.190625, 6.35),
        (3.175, 1.190625, 6.35),
        (6.35, 1.190625, 3.175),
        (6.35, 1.190625, -3.175),
        (3.175, 1.190625, -6.35),
        (-3.175, 1.190625, -6.35),
        (-6.35, 1.190625, -3.175),
        (-6.35, 1.190625, 3.175),
    ]]
    fillet(fillet28_edges, radius=FILLET28_R)

    # Fillet29
    fillet29_edges = [part.edges().sort_by_distance(p)[0] for p in [
        (6.35, 2.38125, 0),
        (0, 2.38125, -6.35),
        (-6.35, 2.38125, 0),
        (0, 2.38125, 6.35),
    ]]
    fillet(fillet29_edges, radius=FILLET29_R)


solid = part.part
